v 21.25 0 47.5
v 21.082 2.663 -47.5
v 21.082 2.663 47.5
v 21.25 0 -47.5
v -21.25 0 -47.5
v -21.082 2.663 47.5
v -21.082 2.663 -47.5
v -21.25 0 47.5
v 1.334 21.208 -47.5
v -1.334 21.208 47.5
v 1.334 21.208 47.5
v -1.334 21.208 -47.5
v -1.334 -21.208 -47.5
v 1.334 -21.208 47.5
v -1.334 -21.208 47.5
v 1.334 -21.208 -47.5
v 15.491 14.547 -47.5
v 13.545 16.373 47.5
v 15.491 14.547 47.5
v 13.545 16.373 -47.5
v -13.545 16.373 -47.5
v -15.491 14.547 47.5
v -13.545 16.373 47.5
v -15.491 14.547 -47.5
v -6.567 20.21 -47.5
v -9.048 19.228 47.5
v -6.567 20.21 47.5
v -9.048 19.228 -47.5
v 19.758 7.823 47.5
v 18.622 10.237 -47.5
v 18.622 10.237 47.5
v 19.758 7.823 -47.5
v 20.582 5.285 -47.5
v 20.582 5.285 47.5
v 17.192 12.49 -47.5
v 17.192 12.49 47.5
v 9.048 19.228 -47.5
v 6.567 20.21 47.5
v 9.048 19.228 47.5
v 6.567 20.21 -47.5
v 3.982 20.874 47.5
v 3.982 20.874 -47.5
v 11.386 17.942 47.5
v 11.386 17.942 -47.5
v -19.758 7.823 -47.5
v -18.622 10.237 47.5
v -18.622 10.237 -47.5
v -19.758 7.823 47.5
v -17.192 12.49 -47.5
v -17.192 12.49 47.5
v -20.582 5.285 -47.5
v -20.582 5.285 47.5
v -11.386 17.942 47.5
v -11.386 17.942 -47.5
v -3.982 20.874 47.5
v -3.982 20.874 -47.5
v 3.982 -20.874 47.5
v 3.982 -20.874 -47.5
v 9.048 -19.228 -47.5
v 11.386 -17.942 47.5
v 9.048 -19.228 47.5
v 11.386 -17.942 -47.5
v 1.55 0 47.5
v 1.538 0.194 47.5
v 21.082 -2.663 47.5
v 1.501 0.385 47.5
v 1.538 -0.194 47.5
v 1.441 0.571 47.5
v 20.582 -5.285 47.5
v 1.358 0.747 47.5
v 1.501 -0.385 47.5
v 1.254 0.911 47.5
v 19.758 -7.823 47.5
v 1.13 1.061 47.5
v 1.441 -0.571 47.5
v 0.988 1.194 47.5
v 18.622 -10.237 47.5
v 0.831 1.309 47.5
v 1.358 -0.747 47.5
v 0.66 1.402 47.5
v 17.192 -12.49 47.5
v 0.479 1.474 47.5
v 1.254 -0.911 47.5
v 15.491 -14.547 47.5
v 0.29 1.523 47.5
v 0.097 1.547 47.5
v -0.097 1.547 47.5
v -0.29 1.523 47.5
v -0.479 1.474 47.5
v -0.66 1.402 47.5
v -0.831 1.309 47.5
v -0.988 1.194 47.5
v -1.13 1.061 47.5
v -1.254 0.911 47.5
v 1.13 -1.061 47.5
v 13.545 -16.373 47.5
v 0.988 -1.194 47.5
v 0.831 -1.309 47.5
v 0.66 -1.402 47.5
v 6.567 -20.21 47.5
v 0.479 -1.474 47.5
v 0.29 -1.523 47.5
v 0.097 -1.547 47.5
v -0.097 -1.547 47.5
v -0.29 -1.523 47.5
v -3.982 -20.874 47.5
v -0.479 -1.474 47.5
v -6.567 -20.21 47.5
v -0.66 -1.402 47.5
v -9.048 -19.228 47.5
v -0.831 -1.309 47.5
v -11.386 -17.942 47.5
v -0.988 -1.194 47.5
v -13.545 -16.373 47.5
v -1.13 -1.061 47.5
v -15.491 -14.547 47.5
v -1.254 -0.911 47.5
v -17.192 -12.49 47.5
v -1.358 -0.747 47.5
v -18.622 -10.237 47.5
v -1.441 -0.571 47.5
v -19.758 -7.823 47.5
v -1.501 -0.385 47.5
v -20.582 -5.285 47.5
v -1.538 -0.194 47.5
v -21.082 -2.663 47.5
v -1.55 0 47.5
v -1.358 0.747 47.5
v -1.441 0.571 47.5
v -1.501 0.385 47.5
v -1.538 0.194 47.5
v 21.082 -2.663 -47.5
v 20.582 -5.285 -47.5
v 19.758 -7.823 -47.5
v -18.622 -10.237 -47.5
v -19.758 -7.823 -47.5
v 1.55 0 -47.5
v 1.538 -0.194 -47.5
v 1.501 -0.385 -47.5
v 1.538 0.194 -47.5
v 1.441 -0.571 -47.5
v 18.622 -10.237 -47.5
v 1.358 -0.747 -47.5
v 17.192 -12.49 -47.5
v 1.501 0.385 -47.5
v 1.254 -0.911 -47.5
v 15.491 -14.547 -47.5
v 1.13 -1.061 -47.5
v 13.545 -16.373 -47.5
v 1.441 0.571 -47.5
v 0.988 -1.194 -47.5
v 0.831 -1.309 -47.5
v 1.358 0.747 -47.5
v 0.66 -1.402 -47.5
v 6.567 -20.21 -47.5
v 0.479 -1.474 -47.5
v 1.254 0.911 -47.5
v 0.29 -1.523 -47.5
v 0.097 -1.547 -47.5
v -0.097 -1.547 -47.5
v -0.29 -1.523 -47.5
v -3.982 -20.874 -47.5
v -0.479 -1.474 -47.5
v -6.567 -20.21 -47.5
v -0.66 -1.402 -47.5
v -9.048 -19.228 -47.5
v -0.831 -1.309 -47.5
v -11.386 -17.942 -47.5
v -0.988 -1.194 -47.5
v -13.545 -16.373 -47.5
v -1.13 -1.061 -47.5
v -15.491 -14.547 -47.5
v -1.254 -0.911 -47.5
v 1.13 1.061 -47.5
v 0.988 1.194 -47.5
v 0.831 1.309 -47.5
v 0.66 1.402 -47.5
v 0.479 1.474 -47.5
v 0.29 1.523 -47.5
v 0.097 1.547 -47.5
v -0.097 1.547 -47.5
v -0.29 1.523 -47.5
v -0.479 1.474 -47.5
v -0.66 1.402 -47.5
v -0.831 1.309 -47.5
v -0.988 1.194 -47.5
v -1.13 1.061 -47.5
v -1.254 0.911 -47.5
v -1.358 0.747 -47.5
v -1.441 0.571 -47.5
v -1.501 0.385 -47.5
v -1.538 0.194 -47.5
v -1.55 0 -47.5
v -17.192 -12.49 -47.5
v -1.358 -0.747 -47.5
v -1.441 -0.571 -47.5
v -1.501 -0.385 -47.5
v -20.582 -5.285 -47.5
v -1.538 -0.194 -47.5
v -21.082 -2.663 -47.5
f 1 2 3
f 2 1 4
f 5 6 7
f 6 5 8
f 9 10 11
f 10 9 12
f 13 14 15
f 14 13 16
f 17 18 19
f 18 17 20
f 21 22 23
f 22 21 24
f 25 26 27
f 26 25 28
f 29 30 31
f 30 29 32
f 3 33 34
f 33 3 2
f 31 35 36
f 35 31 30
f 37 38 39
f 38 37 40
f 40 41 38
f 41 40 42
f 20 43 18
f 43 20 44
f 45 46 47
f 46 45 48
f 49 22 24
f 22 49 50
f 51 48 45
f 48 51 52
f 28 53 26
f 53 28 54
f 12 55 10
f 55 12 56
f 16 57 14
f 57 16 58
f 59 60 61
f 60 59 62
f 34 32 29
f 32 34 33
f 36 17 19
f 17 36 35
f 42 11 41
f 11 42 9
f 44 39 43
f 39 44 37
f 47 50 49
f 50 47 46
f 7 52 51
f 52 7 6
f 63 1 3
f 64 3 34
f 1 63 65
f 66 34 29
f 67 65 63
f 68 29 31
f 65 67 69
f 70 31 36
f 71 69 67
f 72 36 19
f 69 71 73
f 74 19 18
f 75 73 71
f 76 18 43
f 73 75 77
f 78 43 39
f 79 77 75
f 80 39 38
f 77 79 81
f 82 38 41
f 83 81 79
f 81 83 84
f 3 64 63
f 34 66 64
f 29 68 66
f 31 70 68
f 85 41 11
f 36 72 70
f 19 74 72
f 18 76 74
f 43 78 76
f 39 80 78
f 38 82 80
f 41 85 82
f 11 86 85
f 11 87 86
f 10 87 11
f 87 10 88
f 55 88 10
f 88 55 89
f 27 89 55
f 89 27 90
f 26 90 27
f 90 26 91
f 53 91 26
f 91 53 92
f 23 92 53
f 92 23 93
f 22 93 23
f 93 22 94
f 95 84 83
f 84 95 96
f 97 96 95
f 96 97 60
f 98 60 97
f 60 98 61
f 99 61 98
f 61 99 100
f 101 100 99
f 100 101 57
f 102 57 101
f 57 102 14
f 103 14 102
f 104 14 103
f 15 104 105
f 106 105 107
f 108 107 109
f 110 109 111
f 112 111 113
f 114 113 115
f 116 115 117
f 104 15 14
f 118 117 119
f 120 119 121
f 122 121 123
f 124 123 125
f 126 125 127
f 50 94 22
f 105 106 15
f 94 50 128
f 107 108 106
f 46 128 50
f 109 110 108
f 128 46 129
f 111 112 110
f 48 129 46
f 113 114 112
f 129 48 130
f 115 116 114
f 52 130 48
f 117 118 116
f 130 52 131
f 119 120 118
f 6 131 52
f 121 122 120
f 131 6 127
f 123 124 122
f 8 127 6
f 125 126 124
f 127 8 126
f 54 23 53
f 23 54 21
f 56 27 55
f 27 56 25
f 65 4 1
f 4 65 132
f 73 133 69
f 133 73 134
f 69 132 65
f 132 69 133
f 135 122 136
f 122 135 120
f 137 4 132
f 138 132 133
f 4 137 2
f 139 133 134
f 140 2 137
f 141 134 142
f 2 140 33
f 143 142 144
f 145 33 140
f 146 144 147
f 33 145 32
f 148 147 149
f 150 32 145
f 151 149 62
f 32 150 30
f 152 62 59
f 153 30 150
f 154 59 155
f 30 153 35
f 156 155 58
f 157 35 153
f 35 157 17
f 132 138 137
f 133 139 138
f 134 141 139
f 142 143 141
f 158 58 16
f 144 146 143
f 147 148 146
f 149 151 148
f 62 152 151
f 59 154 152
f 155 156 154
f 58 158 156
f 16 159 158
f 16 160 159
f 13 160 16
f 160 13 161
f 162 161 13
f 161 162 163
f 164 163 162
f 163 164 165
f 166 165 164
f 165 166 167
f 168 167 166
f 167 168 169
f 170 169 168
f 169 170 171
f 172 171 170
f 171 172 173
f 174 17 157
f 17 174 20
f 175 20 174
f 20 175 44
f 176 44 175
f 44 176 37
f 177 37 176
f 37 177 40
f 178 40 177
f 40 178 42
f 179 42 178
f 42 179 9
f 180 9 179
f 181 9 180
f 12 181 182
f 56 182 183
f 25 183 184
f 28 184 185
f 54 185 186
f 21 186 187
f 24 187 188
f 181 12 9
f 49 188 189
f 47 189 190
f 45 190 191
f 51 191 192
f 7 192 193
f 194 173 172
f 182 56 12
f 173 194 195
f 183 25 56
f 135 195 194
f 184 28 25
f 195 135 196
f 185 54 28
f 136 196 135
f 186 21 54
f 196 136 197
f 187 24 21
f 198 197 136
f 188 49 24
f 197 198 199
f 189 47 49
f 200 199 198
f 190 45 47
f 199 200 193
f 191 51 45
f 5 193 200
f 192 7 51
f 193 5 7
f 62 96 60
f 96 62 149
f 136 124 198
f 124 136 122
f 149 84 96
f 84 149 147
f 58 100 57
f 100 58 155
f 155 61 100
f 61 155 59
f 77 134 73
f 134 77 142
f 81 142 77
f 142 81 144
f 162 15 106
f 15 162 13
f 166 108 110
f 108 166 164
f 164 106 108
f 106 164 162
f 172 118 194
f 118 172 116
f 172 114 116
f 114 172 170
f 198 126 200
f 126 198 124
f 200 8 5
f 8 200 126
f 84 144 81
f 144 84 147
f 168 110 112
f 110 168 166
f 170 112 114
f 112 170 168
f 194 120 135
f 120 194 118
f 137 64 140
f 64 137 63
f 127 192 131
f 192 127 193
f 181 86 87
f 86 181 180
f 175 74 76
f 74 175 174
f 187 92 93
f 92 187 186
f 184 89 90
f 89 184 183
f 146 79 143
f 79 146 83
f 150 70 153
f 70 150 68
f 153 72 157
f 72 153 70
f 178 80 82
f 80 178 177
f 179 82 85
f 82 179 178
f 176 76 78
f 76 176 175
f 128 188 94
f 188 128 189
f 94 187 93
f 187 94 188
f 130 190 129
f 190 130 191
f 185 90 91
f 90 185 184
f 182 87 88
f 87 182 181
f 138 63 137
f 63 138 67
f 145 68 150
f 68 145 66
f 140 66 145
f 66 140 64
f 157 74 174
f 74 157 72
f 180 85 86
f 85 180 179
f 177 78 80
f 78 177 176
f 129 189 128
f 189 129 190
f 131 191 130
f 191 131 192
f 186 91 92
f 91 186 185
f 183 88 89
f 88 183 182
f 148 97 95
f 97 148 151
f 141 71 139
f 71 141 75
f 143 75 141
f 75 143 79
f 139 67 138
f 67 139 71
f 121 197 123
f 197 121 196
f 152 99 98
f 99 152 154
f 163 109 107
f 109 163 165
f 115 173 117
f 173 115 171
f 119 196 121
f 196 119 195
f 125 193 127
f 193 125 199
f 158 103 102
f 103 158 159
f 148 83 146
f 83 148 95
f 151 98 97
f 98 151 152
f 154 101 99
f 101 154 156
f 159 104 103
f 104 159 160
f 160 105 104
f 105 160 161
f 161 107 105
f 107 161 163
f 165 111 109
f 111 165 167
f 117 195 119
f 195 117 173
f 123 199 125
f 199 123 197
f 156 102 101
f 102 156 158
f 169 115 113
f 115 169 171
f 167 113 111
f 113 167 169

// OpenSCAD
$fn = 50;


difference() {
	union() {
		translate(v = [0, 0, -47.5000000000]) {
			cylinder(h = 95, r = 21.2500000000);
		}
	}
	union() {
		translate(v = [0, 0, -100.0000000000]) {
			cylinder(h = 200, r = 1.5500000000);
		}
	}
}
